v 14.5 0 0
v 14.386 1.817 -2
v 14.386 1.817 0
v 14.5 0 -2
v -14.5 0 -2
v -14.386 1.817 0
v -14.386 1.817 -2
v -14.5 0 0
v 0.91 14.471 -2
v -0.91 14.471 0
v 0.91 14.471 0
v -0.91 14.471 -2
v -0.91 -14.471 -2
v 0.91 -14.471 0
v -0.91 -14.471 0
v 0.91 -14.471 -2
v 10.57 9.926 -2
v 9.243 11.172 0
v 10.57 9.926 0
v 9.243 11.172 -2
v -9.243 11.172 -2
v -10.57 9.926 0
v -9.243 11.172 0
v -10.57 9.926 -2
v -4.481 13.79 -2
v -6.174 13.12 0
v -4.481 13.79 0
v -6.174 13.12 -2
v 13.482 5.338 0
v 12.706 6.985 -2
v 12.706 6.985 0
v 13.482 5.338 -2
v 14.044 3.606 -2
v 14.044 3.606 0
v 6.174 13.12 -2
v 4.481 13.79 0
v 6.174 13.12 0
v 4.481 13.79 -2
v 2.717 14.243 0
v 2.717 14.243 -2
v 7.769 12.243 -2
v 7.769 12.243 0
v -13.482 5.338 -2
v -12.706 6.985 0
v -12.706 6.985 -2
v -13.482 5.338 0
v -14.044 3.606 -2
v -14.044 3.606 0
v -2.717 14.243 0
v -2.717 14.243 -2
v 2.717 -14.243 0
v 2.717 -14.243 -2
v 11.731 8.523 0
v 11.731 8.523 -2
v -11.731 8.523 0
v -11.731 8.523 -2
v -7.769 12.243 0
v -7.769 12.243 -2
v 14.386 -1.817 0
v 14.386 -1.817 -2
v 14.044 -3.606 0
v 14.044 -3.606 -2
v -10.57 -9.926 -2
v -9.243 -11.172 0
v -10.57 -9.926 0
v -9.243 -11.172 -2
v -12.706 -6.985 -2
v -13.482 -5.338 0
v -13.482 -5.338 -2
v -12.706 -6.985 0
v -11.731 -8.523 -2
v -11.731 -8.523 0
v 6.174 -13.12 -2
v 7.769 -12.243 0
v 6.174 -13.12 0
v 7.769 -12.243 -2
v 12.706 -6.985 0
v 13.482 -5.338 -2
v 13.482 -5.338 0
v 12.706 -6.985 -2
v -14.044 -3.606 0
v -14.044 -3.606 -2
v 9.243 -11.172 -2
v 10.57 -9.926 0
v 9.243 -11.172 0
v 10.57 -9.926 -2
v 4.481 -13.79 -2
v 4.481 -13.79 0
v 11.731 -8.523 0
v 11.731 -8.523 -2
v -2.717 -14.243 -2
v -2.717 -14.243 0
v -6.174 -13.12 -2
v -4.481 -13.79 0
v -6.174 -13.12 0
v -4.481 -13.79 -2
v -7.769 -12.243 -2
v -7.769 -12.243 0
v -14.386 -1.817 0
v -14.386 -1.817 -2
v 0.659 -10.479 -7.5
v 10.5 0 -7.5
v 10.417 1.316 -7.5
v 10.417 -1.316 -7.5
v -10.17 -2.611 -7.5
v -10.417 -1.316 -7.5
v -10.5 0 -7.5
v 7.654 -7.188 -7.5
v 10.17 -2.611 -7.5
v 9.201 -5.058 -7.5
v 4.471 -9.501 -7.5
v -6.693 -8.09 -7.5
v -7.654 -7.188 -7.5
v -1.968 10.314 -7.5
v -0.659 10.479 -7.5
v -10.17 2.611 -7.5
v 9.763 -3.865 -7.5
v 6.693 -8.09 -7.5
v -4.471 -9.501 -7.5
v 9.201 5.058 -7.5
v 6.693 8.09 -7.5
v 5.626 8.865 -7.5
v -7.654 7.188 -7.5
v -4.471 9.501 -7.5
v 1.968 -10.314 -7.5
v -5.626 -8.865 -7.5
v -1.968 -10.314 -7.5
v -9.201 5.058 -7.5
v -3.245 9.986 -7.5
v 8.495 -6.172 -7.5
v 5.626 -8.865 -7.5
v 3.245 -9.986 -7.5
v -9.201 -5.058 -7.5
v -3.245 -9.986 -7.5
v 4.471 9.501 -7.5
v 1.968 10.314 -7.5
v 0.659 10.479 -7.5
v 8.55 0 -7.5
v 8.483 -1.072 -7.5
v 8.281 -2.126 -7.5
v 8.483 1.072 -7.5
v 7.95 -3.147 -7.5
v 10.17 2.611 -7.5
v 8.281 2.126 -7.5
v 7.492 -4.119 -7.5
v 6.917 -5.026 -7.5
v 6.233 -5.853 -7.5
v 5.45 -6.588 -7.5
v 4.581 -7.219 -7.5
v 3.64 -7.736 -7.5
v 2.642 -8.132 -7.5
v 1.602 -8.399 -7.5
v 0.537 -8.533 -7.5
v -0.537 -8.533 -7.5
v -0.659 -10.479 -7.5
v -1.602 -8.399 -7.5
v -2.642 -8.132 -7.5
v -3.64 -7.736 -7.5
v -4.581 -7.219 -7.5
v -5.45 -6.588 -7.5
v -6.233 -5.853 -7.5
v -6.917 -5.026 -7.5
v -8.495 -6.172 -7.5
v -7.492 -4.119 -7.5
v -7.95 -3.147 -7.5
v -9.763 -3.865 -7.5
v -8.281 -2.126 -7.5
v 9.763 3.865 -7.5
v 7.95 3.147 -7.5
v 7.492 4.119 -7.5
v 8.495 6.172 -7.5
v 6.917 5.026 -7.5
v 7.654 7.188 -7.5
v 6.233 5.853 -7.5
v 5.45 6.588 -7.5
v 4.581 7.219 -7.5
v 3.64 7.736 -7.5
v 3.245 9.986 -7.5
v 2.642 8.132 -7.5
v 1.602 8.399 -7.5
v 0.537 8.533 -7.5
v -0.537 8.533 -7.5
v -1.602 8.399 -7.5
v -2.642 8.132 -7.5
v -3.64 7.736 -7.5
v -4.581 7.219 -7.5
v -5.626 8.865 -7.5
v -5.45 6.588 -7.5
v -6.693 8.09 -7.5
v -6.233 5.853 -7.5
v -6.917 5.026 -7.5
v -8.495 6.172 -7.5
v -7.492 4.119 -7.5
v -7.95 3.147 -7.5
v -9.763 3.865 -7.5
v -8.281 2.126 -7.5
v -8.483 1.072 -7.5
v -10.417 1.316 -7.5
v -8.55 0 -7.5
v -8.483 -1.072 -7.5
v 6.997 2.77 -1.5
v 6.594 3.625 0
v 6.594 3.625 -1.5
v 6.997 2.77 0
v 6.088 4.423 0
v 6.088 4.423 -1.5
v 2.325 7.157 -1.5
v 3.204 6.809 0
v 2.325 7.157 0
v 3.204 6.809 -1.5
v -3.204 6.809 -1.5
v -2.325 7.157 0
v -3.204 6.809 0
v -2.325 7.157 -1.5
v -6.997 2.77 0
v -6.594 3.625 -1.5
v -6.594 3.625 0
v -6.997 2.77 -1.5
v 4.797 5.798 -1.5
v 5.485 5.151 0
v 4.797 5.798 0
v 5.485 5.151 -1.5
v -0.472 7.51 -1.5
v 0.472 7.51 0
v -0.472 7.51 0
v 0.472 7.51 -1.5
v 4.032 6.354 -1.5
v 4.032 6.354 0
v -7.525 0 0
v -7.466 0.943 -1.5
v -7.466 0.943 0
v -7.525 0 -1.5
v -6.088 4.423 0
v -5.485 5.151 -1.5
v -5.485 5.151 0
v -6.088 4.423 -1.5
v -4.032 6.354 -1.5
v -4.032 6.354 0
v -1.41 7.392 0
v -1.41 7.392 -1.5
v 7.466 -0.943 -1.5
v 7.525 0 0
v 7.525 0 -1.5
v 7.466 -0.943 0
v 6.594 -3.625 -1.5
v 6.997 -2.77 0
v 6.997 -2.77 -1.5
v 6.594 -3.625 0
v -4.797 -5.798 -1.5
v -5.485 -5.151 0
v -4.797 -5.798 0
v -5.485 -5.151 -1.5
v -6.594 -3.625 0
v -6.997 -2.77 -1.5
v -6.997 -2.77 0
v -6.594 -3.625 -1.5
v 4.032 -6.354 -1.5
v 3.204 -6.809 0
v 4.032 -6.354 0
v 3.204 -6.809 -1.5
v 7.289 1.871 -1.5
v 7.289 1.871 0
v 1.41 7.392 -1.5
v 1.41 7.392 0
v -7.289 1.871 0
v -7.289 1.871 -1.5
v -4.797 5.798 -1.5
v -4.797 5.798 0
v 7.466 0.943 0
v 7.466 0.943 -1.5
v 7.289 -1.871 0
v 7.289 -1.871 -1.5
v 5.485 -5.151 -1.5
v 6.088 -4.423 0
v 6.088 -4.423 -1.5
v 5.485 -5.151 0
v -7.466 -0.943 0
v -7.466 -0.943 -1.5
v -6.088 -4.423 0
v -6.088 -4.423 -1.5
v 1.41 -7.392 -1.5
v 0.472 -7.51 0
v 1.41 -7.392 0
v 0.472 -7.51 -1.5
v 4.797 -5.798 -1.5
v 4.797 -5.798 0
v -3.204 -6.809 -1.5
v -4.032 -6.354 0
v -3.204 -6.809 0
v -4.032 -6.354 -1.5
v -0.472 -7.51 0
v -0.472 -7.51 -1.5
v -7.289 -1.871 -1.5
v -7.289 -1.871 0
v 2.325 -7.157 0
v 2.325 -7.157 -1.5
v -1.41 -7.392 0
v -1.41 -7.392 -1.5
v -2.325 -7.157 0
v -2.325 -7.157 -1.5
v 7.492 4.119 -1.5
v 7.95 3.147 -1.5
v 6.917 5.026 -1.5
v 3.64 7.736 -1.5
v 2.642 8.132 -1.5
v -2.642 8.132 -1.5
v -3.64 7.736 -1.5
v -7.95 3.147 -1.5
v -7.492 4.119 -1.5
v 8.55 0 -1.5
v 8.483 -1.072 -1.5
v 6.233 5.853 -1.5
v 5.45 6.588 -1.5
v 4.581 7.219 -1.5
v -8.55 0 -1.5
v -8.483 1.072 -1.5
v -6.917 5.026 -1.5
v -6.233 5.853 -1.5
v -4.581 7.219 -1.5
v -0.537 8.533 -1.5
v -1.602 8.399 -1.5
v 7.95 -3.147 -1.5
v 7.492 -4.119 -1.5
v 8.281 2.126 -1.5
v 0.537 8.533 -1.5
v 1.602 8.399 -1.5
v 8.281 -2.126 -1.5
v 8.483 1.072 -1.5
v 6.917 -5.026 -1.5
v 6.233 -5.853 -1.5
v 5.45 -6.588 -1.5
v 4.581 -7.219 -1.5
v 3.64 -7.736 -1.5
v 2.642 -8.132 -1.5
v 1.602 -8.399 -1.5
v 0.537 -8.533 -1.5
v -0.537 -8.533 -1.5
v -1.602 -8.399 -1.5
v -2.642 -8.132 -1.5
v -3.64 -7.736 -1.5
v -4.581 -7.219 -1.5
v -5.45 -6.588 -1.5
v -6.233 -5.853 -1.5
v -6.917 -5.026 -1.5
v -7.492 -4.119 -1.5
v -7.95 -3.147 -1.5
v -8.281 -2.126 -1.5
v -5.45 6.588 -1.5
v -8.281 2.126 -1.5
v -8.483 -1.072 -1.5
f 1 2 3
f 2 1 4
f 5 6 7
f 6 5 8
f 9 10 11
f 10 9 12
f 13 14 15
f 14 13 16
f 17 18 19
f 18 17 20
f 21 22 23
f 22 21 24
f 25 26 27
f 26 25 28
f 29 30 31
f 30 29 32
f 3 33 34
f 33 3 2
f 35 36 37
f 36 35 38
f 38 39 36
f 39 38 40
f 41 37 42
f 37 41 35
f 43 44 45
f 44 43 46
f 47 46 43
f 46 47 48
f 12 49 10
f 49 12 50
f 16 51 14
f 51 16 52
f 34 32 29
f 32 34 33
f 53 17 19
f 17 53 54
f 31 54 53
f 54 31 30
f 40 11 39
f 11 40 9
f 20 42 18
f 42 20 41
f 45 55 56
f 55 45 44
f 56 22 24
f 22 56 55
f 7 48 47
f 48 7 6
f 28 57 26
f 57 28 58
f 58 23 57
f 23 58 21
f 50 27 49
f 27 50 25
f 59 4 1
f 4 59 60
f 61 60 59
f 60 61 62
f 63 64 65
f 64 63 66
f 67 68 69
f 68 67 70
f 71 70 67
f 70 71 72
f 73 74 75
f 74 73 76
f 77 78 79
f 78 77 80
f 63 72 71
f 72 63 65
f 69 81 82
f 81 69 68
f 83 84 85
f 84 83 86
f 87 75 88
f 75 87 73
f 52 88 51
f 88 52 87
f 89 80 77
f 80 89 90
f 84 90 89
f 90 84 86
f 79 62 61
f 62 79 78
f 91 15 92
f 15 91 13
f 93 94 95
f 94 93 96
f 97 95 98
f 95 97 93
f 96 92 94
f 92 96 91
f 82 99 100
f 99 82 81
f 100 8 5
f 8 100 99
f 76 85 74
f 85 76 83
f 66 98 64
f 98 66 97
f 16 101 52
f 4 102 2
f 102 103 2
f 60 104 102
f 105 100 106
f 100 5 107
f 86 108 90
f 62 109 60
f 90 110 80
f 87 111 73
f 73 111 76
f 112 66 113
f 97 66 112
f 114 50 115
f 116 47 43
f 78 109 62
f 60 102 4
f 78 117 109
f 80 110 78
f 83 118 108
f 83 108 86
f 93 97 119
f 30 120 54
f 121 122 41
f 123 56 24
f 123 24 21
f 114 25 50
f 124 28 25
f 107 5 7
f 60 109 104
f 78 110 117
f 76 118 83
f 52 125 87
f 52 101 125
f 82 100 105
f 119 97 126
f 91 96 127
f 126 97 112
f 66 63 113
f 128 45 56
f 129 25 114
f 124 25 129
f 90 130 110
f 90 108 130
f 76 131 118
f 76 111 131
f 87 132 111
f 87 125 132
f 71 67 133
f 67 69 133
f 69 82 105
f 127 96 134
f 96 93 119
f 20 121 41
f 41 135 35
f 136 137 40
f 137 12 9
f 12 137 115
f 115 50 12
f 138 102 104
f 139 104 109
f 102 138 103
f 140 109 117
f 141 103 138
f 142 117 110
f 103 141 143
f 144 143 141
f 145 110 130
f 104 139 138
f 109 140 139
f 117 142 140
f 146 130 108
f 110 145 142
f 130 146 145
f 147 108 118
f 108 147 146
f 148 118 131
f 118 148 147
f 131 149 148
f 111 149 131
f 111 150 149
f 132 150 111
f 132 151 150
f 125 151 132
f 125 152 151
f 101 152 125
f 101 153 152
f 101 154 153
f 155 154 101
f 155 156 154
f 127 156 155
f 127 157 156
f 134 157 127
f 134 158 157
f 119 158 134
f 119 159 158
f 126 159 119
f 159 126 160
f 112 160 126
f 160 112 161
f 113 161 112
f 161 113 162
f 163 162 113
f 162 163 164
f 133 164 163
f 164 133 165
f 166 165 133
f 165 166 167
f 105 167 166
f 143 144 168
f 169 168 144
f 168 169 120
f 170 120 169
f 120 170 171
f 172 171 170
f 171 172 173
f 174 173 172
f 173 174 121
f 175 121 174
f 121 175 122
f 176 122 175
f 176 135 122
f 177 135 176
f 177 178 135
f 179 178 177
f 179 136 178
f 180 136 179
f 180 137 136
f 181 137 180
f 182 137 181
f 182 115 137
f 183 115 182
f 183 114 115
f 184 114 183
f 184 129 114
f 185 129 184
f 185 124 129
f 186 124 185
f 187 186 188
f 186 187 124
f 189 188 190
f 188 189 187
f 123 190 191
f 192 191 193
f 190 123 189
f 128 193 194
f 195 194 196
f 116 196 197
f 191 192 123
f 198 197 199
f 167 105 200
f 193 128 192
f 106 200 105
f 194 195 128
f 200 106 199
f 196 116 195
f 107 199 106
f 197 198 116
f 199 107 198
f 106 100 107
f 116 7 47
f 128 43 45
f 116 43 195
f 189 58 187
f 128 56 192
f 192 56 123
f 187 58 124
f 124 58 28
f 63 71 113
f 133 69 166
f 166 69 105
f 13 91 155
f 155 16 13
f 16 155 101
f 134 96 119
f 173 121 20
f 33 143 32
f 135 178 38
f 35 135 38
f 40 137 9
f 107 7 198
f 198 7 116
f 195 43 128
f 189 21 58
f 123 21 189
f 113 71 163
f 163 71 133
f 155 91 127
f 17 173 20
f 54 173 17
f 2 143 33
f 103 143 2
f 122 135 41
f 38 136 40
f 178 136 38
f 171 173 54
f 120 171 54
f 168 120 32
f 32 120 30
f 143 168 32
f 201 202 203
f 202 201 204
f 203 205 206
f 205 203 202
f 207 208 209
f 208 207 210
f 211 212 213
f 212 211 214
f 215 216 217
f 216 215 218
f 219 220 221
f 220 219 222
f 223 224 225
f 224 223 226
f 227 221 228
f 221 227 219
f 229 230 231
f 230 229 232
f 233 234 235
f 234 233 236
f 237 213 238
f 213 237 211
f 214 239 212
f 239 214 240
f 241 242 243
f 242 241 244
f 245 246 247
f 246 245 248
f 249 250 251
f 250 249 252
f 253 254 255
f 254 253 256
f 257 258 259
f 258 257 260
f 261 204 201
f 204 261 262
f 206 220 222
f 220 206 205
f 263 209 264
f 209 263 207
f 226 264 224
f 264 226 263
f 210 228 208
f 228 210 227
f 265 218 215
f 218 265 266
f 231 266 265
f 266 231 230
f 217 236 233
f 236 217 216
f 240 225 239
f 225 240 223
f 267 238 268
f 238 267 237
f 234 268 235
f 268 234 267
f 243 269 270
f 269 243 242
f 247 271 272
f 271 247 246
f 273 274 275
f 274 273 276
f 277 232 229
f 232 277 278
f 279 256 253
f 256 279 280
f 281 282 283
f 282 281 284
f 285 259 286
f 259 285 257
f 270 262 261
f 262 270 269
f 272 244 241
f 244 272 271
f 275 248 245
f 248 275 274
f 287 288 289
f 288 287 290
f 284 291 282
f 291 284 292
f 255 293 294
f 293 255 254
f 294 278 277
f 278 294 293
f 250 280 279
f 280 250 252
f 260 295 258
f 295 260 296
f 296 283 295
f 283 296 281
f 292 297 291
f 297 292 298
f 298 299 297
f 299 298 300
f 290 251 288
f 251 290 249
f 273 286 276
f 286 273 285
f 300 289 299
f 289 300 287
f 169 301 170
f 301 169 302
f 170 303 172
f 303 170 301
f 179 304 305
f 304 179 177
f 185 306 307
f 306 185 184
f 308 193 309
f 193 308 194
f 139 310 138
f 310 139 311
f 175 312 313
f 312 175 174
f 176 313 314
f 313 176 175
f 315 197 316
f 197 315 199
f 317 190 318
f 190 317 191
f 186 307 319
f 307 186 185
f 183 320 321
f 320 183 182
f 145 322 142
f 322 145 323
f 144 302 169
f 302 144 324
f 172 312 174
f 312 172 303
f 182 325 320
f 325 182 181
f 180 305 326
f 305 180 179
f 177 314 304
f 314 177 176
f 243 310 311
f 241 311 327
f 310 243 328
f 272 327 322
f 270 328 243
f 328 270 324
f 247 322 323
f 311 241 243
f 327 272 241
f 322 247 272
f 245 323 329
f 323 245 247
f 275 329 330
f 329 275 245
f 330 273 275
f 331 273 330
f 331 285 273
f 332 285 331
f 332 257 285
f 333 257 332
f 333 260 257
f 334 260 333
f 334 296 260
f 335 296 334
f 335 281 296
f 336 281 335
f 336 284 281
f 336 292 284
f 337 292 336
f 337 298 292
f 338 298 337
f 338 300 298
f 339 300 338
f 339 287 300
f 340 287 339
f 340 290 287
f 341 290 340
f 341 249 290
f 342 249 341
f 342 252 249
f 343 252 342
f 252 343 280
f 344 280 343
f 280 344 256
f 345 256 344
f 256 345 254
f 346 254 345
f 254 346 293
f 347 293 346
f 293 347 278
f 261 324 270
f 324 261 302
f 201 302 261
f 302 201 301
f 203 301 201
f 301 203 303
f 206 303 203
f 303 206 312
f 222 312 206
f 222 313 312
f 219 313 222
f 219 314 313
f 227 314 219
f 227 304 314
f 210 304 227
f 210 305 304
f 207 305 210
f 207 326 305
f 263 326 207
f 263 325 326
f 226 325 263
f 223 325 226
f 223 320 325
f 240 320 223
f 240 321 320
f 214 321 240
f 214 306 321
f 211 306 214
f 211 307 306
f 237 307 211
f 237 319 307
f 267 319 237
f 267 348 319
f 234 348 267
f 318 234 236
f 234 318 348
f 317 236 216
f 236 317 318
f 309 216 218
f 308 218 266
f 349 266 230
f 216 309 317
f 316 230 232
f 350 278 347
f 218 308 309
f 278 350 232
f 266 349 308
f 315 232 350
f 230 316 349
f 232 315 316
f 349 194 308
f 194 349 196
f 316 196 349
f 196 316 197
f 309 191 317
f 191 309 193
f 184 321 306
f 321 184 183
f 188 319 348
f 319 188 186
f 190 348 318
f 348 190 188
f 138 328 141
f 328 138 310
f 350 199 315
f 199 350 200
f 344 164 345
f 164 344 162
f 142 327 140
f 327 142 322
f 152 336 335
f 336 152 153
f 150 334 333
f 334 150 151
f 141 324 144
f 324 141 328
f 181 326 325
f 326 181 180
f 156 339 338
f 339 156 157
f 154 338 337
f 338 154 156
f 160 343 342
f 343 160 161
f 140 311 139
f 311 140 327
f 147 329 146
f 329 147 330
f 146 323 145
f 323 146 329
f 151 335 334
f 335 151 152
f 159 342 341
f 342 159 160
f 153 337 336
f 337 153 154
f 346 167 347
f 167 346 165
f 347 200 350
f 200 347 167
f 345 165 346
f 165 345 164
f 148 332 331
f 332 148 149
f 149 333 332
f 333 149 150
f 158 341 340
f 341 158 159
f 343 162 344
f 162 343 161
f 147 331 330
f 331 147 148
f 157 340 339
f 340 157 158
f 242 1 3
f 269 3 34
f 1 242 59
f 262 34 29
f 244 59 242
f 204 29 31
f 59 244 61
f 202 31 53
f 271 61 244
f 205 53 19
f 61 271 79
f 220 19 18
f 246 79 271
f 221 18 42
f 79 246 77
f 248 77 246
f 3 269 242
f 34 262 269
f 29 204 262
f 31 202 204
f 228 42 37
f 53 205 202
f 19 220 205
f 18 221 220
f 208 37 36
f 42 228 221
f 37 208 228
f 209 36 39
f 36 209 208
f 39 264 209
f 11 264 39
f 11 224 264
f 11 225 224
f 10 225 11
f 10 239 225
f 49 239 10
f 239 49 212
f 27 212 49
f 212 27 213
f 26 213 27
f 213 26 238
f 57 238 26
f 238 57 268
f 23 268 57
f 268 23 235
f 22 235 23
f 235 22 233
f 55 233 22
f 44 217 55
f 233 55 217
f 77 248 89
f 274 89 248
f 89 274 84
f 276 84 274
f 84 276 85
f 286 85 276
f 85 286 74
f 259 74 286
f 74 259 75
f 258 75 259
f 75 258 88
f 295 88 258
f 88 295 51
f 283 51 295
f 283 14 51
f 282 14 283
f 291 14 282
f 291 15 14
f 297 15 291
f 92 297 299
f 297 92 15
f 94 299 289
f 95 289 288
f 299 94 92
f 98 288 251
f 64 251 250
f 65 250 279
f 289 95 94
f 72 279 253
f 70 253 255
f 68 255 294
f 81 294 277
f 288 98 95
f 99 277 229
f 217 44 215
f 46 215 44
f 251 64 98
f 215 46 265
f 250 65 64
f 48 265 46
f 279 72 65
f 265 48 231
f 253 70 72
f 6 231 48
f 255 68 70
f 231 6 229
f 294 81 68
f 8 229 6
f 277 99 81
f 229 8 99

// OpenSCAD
$fn = 50;


difference() {
	union() {
		*color(alpha = 1.0000000000, c = "gray") {
			translate(v = [0, 14, -2.0000000000]) {
				linear_extrude(height = 1) {
					text(font = "Arial:style=Bold", halign = "center", size = 4.5000000000, text = "COMMENT description oobb_circle_shape_positive_type_4_depth_0_0_-2.0_pos_15_thickness_2_width_bearing_twenty_twenty_aluminium_extrusion_extra_true_both_holes_0_0_-7.5_pos_plate", valign = "center");
				}
			}
		}
		translate(v = [0, 0, -2.0000000000]) {
			cylinder(h = 4, r = 14.5000000000);
		}
		*color(alpha = 1.0000000000, c = "gray") {
			translate(v = [0, 14, 4.7500000000]) {
				linear_extrude(height = 1) {
					text(font = "Arial:style=Bold", halign = "center", size = 4.5000000000, text = "COMMENT description oobb_cylinder_shape_positive_type_5.5_depth_0_0_4.75_pos_15_thickness_2_width_bearing_twenty_twenty_aluminium_extrusion_extra_true_both_holes_0_0_-7.5_pos_plate_14.5_r1_10.5_r2", valign = "center");
				}
			}
		}
		translate(v = [0, 0, 2.0000000000]) {
			cylinder(h = 5.5000000000, r1 = 14.5000000000, r2 = 10.5000000000);
		}
		*color(alpha = 1.0000000000, c = "gray") {
			translate(v = [0, 14, -4.7500000000]) {
				linear_extrude(height = 1) {
					text(font = "Arial:style=Bold", halign = "center", size = 4.5000000000, text = "COMMENT description oobb_cylinder_shape_positive_type_5.5_depth_0_0_-4.75_pos_15_thickness_2_width_bearing_twenty_twenty_aluminium_extrusion_extra_true_both_holes_0_0_-7.5_pos_plate_10.5_r1_14.5_r2", valign = "center");
				}
			}
		}
		translate(v = [0, 0, -7.5000000000]) {
			cylinder(h = 5.5000000000, r1 = 10.5000000000, r2 = 14.5000000000);
		}
	}
	union() {
		*color(alpha = 1.0000000000, c = "gray") {
			translate(v = [0, 14, 0]) {
				linear_extrude(height = 1) {
					text(font = "Arial:style=Bold", halign = "center", size = 4.5000000000, text = "COMMENT description oobb_hole_shape_negative_type_15_thickness_2_width_bearing_twenty_twenty_aluminium_extrusion_extra_true_both_holes_0_0_-7.5_pos_plate_5_radius", valign = "center");
				}
			}
		}
		translate(v = [0, 0, -50.0000000000]) {
			cylinder(h = 100, r = 5);
		}
		*color(alpha = 1.0000000000, c = "gray") {
			translate(v = [0, 14, 4.5000000000]) {
				linear_extrude(height = 1) {
					text(font = "Arial:style=Bold", halign = "center", size = 4.5000000000, text = "COMMENT description oobb_bearing_shape_negative_type_0_0_4.5_pos_15_thickness_2_width_bearing_twenty_twenty_aluminium_extrusion_extra_true_both_holes_0_0_-7.5_pos_plate_606_bearing_bottom_zz", valign = "center");
				}
			}
		}
		translate(v = [0, 0, 4.5000000000]) {
			translate(v = [0, 0, -3.0000000000]) {
				union() {
					difference() {
						cylinder(h = 6, r = 8.5500000000);
						cylinder(h = 6, r = 3.0000000000);
					}
					difference() {
						translate(v = [0, 0, -50]) {
							cylinder(h = 100, r = 7.5250000000);
						}
						translate(v = [0, 0, -50]) {
							cylinder(h = 100, r = 4.0250000000);
						}
					}
				}
			}
		}
		*color(alpha = 1.0000000000, c = "gray") {
			translate(v = [0, 14, -4.5000000000]) {
				linear_extrude(height = 1) {
					text(font = "Arial:style=Bold", halign = "center", size = 4.5000000000, text = "COMMENT description oobb_bearing_shape_negative_type_0_0_-4.5_pos_15_thickness_2_width_bearing_twenty_twenty_aluminium_extrusion_extra_true_both_holes_0_0_-7.5_pos_plate_606_bearing_bottom_zz", valign = "center");
				}
			}
		}
		translate(v = [0, 0, -4.5000000000]) {
			translate(v = [0, 0, -3.0000000000]) {
				union() {
					difference() {
						cylinder(h = 6, r = 8.5500000000);
						cylinder(h = 6, r = 3.0000000000);
					}
					difference() {
						translate(v = [0, 0, -50]) {
							cylinder(h = 100, r = 7.5250000000);
						}
						translate(v = [0, 0, -50]) {
							cylinder(h = 100, r = 4.0250000000);
						}
					}
				}
			}
		}
		*color(alpha = 1.0000000000, c = "gray") {
			translate(v = [0, 14, 0]) {
				linear_extrude(height = 1) {
					text(font = "Arial:style=Bold", halign = "center", size = 4.5000000000, text = "COMMENT description oobb_slice_shape_negative_type_15_thickness_2_width_bearing_twenty_twenty_aluminium_extrusion_extra_true_both_holes_0_0_-7.5_pos_plate", valign = "center");
				}
			}
		}
		translate(v = [-250, -250, 0]) {
			cube(size = [500, 500, 500]);
		}
		translate(v = [-250, -250, 0]) {
			cube(size = [500, 500, 500]);
		}
		translate(v = [-250, -250, 0]) {
			cube(size = [500, 500, 500]);
		}
	}
}
